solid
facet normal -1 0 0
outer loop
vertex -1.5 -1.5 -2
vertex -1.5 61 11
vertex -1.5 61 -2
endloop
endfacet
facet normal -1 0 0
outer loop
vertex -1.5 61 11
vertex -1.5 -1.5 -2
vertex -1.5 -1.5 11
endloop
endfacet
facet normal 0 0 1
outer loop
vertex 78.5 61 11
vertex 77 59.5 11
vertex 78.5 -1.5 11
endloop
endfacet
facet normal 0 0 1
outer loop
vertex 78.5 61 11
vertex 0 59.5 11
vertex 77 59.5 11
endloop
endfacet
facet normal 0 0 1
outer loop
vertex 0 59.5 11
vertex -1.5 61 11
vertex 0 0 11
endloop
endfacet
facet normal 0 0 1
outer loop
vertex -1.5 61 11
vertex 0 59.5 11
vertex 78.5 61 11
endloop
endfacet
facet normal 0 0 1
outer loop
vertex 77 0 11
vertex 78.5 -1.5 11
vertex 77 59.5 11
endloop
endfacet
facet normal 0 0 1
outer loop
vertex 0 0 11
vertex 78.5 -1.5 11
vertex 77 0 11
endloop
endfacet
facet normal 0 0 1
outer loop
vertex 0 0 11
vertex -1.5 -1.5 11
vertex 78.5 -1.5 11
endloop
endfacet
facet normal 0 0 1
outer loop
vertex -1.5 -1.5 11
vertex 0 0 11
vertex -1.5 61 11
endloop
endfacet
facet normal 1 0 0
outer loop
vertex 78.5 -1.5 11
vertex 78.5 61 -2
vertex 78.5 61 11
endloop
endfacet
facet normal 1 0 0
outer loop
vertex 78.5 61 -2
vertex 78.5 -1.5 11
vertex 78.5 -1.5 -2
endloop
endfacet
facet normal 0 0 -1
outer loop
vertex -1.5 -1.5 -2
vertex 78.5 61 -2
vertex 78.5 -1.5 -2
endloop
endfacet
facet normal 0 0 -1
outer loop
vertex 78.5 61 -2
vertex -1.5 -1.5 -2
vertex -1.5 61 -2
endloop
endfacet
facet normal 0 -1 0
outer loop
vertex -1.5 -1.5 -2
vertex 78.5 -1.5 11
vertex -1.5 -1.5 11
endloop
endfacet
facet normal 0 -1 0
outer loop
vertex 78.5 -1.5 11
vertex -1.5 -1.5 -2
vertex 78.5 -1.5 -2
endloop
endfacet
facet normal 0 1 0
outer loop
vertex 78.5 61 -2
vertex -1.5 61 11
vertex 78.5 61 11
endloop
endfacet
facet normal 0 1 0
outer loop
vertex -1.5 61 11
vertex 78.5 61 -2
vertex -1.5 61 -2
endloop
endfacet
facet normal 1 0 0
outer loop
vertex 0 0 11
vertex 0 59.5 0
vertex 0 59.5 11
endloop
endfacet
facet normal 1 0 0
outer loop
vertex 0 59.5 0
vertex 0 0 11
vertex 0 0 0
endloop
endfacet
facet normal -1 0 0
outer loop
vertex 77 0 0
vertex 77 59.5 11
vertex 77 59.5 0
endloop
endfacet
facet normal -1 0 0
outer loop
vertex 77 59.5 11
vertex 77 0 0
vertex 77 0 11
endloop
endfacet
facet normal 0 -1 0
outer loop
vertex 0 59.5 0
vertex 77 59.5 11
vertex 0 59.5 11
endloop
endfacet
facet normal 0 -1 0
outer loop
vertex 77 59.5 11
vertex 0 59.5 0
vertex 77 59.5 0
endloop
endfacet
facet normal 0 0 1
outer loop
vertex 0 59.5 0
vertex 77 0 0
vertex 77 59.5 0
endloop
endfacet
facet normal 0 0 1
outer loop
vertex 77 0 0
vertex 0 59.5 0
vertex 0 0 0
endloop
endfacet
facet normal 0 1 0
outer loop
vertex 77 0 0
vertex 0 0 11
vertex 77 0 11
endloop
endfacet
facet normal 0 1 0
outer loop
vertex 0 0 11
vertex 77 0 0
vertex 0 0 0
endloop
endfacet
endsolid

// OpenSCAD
// file: parts/box.scad
/* Box with open top */
module box() {
	difference() {
		translate(-wall_s)
			cube(box_s + 2 * wall_s - [0, 0, wall_s[2]]);
		cube(box_s);
	}
}
// file: config.scad
/* Box inner size and wall thickness */
box_s = [77, 59.5, 11];
wall_s = [1.5, 1.5, 2];

/* Lid base thickness and depth */
base_s = [2, 2, 2];

/* Socket position and size */
lid_s = [17, 10];
lid_o = [5, box_s[1] - lid_s[1] - 5];

/* Character size (includes inter-char spacing) */
char_s = [6, 7];

/* Hackology label next to socket */
text_str = "hackology";
text_scale = (box_s[0] - 2 * lid_o[0] - lid_s[0] - 5) / (len(text_str) * char_s[0] - 1);
text_s = [len(text_str) * char_s[0] - 1, char_s[1]];
text_o = [lid_o[0] + lid_s[0] + 5, lid_o[1] + lid_s[1] / 2];

/* AURA label in remaining space */
aura_str = "AURA";
aura_scale = (box_s[0] - 2 * lid_o[0]) / (len(aura_str) * char_s[0] - 1);
aura_s = [len(aura_str) * char_s[0] - 1, char_s[1]] * aura_scale;
aura_o = [lid_o[0], lid_o[1] / 2, 0];

/* Struts on lid (replaced with separate base ring) */
//strut_round = 1;
//strut_s = [3, 3, 3] - strut_round * [1, 1, 1];
// main file
include <config.scad>;

include <parts/box.scad>;

/* Assemble and render! */
box();
